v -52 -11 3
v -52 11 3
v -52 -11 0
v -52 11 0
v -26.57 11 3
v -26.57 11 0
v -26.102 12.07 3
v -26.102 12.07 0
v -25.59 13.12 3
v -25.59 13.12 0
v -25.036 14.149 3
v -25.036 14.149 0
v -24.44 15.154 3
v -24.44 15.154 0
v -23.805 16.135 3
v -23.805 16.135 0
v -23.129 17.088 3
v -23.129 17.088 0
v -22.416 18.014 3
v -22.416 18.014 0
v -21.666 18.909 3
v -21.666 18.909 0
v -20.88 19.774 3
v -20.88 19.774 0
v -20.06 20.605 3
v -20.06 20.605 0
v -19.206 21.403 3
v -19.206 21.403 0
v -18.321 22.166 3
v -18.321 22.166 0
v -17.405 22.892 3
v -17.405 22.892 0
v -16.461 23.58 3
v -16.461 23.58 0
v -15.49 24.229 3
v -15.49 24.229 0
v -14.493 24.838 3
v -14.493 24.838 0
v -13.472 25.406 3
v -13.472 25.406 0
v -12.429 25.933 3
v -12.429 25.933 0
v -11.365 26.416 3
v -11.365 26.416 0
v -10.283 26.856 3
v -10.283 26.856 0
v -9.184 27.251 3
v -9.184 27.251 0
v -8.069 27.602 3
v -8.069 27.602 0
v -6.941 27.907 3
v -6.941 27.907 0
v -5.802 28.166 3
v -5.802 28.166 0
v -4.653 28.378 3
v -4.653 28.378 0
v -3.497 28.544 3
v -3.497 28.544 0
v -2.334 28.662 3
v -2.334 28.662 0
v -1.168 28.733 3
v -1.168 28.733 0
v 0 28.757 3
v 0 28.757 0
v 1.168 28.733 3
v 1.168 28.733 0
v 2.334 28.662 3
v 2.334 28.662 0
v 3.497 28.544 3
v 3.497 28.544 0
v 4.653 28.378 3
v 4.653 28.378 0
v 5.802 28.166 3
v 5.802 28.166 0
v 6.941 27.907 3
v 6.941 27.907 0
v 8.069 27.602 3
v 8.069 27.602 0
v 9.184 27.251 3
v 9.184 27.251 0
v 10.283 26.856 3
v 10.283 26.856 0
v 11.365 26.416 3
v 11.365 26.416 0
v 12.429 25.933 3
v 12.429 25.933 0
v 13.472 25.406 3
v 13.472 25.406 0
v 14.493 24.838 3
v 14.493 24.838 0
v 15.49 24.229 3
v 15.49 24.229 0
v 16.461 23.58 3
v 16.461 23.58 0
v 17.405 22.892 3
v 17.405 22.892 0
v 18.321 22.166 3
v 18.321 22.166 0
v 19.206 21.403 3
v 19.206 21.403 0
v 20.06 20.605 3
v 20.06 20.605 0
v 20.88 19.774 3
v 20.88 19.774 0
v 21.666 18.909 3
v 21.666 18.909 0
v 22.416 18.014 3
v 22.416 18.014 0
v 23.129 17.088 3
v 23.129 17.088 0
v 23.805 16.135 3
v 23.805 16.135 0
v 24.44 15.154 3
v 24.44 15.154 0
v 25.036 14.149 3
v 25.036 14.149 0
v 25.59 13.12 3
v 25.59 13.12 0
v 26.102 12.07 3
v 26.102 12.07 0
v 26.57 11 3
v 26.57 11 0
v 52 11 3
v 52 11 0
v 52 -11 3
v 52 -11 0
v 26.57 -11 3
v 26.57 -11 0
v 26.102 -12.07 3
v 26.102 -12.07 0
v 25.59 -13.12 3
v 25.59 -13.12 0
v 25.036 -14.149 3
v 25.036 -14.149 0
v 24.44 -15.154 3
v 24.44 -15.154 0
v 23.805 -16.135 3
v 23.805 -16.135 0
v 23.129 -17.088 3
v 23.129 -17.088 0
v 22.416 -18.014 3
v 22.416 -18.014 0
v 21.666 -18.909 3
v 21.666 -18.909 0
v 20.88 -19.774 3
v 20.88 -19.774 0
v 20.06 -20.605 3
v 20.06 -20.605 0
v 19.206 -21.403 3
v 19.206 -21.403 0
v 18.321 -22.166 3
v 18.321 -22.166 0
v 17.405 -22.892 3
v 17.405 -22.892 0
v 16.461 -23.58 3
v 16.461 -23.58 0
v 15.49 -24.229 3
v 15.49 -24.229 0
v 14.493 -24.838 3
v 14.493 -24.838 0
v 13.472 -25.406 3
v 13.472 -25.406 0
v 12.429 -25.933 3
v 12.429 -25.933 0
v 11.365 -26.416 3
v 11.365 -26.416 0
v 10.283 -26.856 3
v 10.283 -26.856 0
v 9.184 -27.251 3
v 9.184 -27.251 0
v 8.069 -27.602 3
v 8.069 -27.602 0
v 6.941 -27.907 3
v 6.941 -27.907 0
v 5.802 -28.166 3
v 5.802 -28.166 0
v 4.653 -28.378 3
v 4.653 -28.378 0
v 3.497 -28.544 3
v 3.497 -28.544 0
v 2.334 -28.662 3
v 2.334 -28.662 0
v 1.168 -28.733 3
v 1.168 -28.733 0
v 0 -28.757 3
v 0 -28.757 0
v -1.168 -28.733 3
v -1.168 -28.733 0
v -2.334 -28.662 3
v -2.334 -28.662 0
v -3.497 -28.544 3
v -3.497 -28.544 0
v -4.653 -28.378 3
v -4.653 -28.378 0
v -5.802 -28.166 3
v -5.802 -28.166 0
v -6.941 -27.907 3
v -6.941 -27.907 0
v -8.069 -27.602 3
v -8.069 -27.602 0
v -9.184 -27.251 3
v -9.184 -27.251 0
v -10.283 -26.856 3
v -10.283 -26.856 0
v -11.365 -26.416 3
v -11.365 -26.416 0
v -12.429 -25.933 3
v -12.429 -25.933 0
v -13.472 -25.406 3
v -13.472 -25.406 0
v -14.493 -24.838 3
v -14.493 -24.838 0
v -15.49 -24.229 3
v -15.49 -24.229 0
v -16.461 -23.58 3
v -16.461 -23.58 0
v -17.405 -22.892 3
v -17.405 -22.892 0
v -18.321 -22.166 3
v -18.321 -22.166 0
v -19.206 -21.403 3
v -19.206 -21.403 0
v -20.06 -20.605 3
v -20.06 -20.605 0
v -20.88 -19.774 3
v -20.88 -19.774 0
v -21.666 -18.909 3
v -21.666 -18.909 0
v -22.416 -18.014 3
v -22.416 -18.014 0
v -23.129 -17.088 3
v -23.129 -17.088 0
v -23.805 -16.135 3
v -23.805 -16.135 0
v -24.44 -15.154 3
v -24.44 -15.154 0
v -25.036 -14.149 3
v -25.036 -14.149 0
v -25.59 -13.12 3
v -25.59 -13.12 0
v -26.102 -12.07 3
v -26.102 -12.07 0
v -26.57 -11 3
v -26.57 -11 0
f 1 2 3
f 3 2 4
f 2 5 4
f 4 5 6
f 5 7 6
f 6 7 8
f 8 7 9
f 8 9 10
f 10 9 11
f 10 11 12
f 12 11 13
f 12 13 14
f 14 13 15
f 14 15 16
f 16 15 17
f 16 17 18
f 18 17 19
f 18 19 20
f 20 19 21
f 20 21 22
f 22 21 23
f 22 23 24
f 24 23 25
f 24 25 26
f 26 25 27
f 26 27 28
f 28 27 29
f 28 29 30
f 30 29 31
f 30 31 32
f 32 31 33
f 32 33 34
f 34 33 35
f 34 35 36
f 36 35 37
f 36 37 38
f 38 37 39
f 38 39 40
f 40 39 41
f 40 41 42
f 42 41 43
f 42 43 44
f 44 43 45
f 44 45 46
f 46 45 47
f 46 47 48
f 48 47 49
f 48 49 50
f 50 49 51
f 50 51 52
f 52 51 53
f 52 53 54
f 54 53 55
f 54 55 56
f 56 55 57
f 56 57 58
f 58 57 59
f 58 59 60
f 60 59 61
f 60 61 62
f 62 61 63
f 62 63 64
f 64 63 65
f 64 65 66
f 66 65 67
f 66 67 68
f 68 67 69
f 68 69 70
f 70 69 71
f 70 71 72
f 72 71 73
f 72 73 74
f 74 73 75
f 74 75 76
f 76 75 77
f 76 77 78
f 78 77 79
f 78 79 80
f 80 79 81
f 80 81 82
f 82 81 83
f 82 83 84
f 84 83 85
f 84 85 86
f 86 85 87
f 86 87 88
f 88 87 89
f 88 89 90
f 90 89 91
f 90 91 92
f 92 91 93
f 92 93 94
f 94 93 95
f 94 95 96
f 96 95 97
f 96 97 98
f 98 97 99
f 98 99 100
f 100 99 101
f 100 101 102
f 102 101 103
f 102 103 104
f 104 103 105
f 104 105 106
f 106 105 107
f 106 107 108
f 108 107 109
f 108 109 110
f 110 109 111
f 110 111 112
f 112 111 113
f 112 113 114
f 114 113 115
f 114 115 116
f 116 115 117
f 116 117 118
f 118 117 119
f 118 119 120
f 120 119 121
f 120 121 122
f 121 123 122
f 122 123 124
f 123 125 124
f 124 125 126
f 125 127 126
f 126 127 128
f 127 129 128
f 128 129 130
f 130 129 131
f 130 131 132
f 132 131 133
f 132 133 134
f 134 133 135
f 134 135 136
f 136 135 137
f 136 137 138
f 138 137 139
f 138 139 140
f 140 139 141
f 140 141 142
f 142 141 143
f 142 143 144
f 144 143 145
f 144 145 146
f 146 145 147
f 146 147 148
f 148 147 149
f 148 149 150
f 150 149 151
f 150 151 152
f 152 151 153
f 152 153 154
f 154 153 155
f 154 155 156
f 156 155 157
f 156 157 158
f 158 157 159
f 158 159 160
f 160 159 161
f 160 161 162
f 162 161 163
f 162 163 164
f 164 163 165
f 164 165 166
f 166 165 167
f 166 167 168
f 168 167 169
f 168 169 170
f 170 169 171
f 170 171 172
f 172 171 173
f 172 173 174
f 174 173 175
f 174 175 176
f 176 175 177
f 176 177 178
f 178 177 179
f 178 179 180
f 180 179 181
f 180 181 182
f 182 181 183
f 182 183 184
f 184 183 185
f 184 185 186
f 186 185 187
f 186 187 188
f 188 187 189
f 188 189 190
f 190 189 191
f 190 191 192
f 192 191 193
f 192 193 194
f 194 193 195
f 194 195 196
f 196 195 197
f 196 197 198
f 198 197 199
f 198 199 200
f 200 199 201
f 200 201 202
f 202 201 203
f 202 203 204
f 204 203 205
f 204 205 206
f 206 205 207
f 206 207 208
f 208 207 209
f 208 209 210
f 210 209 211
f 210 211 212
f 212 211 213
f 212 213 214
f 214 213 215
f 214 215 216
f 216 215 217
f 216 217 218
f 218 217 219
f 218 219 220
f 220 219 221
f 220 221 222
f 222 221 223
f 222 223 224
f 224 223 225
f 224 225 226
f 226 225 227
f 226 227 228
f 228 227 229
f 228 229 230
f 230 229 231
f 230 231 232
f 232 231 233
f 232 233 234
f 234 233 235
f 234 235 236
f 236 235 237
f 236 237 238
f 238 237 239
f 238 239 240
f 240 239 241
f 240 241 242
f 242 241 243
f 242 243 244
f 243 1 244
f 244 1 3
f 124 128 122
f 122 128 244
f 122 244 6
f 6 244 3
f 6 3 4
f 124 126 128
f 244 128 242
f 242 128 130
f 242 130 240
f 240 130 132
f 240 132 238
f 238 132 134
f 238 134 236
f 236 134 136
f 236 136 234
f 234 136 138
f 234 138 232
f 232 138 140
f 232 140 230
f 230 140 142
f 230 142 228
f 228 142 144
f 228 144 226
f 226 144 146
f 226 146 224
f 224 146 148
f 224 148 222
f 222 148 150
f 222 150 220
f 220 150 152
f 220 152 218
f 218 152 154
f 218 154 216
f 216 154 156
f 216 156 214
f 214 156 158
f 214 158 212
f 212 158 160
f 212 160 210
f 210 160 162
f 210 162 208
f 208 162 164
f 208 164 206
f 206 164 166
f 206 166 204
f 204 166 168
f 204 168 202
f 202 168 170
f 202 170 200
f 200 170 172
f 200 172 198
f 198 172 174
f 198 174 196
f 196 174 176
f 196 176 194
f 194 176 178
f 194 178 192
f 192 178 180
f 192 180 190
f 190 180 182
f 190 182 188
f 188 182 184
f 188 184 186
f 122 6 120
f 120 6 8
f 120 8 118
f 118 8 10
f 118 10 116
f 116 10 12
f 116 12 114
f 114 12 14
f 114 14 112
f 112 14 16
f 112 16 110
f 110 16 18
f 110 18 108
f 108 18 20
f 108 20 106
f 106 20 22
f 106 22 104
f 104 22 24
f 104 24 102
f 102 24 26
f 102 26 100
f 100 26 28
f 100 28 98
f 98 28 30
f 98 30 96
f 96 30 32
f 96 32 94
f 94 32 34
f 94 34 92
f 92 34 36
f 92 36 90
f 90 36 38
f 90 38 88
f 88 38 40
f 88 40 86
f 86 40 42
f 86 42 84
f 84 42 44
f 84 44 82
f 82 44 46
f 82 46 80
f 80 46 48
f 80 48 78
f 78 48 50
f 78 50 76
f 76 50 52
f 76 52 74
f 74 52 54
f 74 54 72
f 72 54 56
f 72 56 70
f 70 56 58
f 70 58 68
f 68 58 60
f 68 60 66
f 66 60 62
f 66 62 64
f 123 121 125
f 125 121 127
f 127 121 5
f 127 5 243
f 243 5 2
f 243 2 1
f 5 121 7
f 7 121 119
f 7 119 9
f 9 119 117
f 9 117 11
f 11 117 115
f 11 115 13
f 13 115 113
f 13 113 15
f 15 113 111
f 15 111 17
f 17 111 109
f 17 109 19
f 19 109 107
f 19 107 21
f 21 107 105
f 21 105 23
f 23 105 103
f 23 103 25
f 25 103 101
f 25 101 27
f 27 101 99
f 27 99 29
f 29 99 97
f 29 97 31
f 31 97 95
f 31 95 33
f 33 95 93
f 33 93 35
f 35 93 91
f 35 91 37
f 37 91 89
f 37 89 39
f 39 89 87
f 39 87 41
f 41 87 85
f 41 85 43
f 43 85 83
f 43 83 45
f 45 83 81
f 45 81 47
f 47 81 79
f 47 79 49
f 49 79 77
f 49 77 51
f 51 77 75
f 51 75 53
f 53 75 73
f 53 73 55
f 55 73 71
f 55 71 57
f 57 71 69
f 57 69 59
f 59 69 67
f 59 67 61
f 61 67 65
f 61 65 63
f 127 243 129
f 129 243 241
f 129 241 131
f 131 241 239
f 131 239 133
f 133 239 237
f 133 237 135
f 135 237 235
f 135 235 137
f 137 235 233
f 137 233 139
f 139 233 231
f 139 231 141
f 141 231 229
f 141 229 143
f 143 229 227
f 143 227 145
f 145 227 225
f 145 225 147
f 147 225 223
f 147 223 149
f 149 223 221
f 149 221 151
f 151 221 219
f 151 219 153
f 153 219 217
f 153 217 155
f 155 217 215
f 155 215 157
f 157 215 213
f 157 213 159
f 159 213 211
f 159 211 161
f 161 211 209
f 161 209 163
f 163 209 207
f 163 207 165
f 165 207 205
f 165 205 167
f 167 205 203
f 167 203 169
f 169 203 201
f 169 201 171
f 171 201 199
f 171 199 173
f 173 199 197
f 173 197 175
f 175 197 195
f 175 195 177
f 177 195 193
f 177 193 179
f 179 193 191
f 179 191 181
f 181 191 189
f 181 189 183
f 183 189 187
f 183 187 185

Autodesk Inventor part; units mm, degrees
ref_plane "YZ Plane" through (0, 0, 0) normal (1, 0, 0) x (0, 1, 0)
ref_plane "XZ Plane" through (0, 0, 0) normal (0, 1, 0) x (-1, 0, 0)
ref_plane "XY Plane" through (0, 0, 0) normal (0, 0, 1) x (1, 0, 0)
sketch "Skizze1" plane through (0, 0, 0) normal (0, 0, 1) x (1, 0, 0)
  line L0 (-50, 9) -> (-50, -9) construction
  line L1 (50, 9) -> (50, -9) construction
  line L2 (-50, -9) -> (-50, 9)
  line L3 (-50, 9) -> (-25.1982, 9)
  line L4 (25.1982, 9) -> (50, 9)
  line L5 (50, -9) -> (25.1982, -9)
  line L6 (-25.1982, -9) -> (-50, -9)
  line L7 (50, 9) -> (29.5255, 5.3146) construction
  arc A0 (25.1982, 9) -> (-25.1982, 9) centre (0, 0) ccw
  arc A1 (-25.1982, -9) -> (25.1982, -9) centre (0, 0) ccw
  line L8 (50, -12.5) -> (50, -9) construction
  line L9 (50, 9) -> (50, 12.5) construction
  line L10 (50, 9) -> (50, -9)
  point P0 (0, 0)
  dimension "d13" = 100
  dimension "d14" = 18
extrude "Extrusion1" add sketch "Skizze1" along normal blind 3
sketch "Skizze3" plane through (0, 0, 0) normal (0, 0, -1) x (-1, 0, 0)
  line L0 (50, -12.5) -> (50, 12.5) construction
  line L1 (50, 12.5) -> (27.2718, 12.5) construction
  arc A0 (27.2718, 12.5) -> (-27.2718, 12.5) centre (0, 0) ccw construction
  line L2 (-27.2718, 12.5) -> (-50, 12.5) construction
  line L3 (-50, 12.5) -> (-50, -12.5) construction
  line L4 (-50, -12.5) -> (-27.2718, -12.5) construction
  arc A1 (-27.2718, -12.5) -> (27.2718, -12.5) centre (0, 0) ccw construction
  line L5 (27.2718, -12.5) -> (50, -12.5) construction
  line L6 (50, 9) -> (50, -9) projected
  line L7 (50, -9) -> (25.1982, -9) projected
  arc A2 (-25.1982, -9) -> (25.1982, -9) centre (0, 0) ccw projected
  line L8 (-25.1982, -9) -> (-50, -9) projected
  line L9 (-50, -9) -> (-50, 9) projected
  line L10 (-50, 9) -> (-25.1982, 9) projected
  arc A3 (25.1982, 9) -> (-25.1982, 9) centre (0, 0) ccw projected
  line L11 (25.1982, 9) -> (50, 9) projected
  line L12 (-26.5702, 11) -> (-52, 11)
  line L13 (-52, 11) -> (-52, -11)
  line L14 (-52, -11) -> (-26.5702, -11)
  arc A4 (-26.5702, -11) -> (26.5702, -11) centre (0, 0) ccw
  line L15 (26.5702, -11) -> (52, -11)
  line L16 (52, -11) -> (52, 11)
  line L17 (52, 11) -> (26.5702, 11)
  arc A5 (26.5702, 11) -> (-26.5702, 11) centre (0, 0) ccw
  dimension "d15" = 2
extrude "Extrusion3" add sketch "Skizze3" against normal up to surface (3 mm away)
properties part number "Emblem"
